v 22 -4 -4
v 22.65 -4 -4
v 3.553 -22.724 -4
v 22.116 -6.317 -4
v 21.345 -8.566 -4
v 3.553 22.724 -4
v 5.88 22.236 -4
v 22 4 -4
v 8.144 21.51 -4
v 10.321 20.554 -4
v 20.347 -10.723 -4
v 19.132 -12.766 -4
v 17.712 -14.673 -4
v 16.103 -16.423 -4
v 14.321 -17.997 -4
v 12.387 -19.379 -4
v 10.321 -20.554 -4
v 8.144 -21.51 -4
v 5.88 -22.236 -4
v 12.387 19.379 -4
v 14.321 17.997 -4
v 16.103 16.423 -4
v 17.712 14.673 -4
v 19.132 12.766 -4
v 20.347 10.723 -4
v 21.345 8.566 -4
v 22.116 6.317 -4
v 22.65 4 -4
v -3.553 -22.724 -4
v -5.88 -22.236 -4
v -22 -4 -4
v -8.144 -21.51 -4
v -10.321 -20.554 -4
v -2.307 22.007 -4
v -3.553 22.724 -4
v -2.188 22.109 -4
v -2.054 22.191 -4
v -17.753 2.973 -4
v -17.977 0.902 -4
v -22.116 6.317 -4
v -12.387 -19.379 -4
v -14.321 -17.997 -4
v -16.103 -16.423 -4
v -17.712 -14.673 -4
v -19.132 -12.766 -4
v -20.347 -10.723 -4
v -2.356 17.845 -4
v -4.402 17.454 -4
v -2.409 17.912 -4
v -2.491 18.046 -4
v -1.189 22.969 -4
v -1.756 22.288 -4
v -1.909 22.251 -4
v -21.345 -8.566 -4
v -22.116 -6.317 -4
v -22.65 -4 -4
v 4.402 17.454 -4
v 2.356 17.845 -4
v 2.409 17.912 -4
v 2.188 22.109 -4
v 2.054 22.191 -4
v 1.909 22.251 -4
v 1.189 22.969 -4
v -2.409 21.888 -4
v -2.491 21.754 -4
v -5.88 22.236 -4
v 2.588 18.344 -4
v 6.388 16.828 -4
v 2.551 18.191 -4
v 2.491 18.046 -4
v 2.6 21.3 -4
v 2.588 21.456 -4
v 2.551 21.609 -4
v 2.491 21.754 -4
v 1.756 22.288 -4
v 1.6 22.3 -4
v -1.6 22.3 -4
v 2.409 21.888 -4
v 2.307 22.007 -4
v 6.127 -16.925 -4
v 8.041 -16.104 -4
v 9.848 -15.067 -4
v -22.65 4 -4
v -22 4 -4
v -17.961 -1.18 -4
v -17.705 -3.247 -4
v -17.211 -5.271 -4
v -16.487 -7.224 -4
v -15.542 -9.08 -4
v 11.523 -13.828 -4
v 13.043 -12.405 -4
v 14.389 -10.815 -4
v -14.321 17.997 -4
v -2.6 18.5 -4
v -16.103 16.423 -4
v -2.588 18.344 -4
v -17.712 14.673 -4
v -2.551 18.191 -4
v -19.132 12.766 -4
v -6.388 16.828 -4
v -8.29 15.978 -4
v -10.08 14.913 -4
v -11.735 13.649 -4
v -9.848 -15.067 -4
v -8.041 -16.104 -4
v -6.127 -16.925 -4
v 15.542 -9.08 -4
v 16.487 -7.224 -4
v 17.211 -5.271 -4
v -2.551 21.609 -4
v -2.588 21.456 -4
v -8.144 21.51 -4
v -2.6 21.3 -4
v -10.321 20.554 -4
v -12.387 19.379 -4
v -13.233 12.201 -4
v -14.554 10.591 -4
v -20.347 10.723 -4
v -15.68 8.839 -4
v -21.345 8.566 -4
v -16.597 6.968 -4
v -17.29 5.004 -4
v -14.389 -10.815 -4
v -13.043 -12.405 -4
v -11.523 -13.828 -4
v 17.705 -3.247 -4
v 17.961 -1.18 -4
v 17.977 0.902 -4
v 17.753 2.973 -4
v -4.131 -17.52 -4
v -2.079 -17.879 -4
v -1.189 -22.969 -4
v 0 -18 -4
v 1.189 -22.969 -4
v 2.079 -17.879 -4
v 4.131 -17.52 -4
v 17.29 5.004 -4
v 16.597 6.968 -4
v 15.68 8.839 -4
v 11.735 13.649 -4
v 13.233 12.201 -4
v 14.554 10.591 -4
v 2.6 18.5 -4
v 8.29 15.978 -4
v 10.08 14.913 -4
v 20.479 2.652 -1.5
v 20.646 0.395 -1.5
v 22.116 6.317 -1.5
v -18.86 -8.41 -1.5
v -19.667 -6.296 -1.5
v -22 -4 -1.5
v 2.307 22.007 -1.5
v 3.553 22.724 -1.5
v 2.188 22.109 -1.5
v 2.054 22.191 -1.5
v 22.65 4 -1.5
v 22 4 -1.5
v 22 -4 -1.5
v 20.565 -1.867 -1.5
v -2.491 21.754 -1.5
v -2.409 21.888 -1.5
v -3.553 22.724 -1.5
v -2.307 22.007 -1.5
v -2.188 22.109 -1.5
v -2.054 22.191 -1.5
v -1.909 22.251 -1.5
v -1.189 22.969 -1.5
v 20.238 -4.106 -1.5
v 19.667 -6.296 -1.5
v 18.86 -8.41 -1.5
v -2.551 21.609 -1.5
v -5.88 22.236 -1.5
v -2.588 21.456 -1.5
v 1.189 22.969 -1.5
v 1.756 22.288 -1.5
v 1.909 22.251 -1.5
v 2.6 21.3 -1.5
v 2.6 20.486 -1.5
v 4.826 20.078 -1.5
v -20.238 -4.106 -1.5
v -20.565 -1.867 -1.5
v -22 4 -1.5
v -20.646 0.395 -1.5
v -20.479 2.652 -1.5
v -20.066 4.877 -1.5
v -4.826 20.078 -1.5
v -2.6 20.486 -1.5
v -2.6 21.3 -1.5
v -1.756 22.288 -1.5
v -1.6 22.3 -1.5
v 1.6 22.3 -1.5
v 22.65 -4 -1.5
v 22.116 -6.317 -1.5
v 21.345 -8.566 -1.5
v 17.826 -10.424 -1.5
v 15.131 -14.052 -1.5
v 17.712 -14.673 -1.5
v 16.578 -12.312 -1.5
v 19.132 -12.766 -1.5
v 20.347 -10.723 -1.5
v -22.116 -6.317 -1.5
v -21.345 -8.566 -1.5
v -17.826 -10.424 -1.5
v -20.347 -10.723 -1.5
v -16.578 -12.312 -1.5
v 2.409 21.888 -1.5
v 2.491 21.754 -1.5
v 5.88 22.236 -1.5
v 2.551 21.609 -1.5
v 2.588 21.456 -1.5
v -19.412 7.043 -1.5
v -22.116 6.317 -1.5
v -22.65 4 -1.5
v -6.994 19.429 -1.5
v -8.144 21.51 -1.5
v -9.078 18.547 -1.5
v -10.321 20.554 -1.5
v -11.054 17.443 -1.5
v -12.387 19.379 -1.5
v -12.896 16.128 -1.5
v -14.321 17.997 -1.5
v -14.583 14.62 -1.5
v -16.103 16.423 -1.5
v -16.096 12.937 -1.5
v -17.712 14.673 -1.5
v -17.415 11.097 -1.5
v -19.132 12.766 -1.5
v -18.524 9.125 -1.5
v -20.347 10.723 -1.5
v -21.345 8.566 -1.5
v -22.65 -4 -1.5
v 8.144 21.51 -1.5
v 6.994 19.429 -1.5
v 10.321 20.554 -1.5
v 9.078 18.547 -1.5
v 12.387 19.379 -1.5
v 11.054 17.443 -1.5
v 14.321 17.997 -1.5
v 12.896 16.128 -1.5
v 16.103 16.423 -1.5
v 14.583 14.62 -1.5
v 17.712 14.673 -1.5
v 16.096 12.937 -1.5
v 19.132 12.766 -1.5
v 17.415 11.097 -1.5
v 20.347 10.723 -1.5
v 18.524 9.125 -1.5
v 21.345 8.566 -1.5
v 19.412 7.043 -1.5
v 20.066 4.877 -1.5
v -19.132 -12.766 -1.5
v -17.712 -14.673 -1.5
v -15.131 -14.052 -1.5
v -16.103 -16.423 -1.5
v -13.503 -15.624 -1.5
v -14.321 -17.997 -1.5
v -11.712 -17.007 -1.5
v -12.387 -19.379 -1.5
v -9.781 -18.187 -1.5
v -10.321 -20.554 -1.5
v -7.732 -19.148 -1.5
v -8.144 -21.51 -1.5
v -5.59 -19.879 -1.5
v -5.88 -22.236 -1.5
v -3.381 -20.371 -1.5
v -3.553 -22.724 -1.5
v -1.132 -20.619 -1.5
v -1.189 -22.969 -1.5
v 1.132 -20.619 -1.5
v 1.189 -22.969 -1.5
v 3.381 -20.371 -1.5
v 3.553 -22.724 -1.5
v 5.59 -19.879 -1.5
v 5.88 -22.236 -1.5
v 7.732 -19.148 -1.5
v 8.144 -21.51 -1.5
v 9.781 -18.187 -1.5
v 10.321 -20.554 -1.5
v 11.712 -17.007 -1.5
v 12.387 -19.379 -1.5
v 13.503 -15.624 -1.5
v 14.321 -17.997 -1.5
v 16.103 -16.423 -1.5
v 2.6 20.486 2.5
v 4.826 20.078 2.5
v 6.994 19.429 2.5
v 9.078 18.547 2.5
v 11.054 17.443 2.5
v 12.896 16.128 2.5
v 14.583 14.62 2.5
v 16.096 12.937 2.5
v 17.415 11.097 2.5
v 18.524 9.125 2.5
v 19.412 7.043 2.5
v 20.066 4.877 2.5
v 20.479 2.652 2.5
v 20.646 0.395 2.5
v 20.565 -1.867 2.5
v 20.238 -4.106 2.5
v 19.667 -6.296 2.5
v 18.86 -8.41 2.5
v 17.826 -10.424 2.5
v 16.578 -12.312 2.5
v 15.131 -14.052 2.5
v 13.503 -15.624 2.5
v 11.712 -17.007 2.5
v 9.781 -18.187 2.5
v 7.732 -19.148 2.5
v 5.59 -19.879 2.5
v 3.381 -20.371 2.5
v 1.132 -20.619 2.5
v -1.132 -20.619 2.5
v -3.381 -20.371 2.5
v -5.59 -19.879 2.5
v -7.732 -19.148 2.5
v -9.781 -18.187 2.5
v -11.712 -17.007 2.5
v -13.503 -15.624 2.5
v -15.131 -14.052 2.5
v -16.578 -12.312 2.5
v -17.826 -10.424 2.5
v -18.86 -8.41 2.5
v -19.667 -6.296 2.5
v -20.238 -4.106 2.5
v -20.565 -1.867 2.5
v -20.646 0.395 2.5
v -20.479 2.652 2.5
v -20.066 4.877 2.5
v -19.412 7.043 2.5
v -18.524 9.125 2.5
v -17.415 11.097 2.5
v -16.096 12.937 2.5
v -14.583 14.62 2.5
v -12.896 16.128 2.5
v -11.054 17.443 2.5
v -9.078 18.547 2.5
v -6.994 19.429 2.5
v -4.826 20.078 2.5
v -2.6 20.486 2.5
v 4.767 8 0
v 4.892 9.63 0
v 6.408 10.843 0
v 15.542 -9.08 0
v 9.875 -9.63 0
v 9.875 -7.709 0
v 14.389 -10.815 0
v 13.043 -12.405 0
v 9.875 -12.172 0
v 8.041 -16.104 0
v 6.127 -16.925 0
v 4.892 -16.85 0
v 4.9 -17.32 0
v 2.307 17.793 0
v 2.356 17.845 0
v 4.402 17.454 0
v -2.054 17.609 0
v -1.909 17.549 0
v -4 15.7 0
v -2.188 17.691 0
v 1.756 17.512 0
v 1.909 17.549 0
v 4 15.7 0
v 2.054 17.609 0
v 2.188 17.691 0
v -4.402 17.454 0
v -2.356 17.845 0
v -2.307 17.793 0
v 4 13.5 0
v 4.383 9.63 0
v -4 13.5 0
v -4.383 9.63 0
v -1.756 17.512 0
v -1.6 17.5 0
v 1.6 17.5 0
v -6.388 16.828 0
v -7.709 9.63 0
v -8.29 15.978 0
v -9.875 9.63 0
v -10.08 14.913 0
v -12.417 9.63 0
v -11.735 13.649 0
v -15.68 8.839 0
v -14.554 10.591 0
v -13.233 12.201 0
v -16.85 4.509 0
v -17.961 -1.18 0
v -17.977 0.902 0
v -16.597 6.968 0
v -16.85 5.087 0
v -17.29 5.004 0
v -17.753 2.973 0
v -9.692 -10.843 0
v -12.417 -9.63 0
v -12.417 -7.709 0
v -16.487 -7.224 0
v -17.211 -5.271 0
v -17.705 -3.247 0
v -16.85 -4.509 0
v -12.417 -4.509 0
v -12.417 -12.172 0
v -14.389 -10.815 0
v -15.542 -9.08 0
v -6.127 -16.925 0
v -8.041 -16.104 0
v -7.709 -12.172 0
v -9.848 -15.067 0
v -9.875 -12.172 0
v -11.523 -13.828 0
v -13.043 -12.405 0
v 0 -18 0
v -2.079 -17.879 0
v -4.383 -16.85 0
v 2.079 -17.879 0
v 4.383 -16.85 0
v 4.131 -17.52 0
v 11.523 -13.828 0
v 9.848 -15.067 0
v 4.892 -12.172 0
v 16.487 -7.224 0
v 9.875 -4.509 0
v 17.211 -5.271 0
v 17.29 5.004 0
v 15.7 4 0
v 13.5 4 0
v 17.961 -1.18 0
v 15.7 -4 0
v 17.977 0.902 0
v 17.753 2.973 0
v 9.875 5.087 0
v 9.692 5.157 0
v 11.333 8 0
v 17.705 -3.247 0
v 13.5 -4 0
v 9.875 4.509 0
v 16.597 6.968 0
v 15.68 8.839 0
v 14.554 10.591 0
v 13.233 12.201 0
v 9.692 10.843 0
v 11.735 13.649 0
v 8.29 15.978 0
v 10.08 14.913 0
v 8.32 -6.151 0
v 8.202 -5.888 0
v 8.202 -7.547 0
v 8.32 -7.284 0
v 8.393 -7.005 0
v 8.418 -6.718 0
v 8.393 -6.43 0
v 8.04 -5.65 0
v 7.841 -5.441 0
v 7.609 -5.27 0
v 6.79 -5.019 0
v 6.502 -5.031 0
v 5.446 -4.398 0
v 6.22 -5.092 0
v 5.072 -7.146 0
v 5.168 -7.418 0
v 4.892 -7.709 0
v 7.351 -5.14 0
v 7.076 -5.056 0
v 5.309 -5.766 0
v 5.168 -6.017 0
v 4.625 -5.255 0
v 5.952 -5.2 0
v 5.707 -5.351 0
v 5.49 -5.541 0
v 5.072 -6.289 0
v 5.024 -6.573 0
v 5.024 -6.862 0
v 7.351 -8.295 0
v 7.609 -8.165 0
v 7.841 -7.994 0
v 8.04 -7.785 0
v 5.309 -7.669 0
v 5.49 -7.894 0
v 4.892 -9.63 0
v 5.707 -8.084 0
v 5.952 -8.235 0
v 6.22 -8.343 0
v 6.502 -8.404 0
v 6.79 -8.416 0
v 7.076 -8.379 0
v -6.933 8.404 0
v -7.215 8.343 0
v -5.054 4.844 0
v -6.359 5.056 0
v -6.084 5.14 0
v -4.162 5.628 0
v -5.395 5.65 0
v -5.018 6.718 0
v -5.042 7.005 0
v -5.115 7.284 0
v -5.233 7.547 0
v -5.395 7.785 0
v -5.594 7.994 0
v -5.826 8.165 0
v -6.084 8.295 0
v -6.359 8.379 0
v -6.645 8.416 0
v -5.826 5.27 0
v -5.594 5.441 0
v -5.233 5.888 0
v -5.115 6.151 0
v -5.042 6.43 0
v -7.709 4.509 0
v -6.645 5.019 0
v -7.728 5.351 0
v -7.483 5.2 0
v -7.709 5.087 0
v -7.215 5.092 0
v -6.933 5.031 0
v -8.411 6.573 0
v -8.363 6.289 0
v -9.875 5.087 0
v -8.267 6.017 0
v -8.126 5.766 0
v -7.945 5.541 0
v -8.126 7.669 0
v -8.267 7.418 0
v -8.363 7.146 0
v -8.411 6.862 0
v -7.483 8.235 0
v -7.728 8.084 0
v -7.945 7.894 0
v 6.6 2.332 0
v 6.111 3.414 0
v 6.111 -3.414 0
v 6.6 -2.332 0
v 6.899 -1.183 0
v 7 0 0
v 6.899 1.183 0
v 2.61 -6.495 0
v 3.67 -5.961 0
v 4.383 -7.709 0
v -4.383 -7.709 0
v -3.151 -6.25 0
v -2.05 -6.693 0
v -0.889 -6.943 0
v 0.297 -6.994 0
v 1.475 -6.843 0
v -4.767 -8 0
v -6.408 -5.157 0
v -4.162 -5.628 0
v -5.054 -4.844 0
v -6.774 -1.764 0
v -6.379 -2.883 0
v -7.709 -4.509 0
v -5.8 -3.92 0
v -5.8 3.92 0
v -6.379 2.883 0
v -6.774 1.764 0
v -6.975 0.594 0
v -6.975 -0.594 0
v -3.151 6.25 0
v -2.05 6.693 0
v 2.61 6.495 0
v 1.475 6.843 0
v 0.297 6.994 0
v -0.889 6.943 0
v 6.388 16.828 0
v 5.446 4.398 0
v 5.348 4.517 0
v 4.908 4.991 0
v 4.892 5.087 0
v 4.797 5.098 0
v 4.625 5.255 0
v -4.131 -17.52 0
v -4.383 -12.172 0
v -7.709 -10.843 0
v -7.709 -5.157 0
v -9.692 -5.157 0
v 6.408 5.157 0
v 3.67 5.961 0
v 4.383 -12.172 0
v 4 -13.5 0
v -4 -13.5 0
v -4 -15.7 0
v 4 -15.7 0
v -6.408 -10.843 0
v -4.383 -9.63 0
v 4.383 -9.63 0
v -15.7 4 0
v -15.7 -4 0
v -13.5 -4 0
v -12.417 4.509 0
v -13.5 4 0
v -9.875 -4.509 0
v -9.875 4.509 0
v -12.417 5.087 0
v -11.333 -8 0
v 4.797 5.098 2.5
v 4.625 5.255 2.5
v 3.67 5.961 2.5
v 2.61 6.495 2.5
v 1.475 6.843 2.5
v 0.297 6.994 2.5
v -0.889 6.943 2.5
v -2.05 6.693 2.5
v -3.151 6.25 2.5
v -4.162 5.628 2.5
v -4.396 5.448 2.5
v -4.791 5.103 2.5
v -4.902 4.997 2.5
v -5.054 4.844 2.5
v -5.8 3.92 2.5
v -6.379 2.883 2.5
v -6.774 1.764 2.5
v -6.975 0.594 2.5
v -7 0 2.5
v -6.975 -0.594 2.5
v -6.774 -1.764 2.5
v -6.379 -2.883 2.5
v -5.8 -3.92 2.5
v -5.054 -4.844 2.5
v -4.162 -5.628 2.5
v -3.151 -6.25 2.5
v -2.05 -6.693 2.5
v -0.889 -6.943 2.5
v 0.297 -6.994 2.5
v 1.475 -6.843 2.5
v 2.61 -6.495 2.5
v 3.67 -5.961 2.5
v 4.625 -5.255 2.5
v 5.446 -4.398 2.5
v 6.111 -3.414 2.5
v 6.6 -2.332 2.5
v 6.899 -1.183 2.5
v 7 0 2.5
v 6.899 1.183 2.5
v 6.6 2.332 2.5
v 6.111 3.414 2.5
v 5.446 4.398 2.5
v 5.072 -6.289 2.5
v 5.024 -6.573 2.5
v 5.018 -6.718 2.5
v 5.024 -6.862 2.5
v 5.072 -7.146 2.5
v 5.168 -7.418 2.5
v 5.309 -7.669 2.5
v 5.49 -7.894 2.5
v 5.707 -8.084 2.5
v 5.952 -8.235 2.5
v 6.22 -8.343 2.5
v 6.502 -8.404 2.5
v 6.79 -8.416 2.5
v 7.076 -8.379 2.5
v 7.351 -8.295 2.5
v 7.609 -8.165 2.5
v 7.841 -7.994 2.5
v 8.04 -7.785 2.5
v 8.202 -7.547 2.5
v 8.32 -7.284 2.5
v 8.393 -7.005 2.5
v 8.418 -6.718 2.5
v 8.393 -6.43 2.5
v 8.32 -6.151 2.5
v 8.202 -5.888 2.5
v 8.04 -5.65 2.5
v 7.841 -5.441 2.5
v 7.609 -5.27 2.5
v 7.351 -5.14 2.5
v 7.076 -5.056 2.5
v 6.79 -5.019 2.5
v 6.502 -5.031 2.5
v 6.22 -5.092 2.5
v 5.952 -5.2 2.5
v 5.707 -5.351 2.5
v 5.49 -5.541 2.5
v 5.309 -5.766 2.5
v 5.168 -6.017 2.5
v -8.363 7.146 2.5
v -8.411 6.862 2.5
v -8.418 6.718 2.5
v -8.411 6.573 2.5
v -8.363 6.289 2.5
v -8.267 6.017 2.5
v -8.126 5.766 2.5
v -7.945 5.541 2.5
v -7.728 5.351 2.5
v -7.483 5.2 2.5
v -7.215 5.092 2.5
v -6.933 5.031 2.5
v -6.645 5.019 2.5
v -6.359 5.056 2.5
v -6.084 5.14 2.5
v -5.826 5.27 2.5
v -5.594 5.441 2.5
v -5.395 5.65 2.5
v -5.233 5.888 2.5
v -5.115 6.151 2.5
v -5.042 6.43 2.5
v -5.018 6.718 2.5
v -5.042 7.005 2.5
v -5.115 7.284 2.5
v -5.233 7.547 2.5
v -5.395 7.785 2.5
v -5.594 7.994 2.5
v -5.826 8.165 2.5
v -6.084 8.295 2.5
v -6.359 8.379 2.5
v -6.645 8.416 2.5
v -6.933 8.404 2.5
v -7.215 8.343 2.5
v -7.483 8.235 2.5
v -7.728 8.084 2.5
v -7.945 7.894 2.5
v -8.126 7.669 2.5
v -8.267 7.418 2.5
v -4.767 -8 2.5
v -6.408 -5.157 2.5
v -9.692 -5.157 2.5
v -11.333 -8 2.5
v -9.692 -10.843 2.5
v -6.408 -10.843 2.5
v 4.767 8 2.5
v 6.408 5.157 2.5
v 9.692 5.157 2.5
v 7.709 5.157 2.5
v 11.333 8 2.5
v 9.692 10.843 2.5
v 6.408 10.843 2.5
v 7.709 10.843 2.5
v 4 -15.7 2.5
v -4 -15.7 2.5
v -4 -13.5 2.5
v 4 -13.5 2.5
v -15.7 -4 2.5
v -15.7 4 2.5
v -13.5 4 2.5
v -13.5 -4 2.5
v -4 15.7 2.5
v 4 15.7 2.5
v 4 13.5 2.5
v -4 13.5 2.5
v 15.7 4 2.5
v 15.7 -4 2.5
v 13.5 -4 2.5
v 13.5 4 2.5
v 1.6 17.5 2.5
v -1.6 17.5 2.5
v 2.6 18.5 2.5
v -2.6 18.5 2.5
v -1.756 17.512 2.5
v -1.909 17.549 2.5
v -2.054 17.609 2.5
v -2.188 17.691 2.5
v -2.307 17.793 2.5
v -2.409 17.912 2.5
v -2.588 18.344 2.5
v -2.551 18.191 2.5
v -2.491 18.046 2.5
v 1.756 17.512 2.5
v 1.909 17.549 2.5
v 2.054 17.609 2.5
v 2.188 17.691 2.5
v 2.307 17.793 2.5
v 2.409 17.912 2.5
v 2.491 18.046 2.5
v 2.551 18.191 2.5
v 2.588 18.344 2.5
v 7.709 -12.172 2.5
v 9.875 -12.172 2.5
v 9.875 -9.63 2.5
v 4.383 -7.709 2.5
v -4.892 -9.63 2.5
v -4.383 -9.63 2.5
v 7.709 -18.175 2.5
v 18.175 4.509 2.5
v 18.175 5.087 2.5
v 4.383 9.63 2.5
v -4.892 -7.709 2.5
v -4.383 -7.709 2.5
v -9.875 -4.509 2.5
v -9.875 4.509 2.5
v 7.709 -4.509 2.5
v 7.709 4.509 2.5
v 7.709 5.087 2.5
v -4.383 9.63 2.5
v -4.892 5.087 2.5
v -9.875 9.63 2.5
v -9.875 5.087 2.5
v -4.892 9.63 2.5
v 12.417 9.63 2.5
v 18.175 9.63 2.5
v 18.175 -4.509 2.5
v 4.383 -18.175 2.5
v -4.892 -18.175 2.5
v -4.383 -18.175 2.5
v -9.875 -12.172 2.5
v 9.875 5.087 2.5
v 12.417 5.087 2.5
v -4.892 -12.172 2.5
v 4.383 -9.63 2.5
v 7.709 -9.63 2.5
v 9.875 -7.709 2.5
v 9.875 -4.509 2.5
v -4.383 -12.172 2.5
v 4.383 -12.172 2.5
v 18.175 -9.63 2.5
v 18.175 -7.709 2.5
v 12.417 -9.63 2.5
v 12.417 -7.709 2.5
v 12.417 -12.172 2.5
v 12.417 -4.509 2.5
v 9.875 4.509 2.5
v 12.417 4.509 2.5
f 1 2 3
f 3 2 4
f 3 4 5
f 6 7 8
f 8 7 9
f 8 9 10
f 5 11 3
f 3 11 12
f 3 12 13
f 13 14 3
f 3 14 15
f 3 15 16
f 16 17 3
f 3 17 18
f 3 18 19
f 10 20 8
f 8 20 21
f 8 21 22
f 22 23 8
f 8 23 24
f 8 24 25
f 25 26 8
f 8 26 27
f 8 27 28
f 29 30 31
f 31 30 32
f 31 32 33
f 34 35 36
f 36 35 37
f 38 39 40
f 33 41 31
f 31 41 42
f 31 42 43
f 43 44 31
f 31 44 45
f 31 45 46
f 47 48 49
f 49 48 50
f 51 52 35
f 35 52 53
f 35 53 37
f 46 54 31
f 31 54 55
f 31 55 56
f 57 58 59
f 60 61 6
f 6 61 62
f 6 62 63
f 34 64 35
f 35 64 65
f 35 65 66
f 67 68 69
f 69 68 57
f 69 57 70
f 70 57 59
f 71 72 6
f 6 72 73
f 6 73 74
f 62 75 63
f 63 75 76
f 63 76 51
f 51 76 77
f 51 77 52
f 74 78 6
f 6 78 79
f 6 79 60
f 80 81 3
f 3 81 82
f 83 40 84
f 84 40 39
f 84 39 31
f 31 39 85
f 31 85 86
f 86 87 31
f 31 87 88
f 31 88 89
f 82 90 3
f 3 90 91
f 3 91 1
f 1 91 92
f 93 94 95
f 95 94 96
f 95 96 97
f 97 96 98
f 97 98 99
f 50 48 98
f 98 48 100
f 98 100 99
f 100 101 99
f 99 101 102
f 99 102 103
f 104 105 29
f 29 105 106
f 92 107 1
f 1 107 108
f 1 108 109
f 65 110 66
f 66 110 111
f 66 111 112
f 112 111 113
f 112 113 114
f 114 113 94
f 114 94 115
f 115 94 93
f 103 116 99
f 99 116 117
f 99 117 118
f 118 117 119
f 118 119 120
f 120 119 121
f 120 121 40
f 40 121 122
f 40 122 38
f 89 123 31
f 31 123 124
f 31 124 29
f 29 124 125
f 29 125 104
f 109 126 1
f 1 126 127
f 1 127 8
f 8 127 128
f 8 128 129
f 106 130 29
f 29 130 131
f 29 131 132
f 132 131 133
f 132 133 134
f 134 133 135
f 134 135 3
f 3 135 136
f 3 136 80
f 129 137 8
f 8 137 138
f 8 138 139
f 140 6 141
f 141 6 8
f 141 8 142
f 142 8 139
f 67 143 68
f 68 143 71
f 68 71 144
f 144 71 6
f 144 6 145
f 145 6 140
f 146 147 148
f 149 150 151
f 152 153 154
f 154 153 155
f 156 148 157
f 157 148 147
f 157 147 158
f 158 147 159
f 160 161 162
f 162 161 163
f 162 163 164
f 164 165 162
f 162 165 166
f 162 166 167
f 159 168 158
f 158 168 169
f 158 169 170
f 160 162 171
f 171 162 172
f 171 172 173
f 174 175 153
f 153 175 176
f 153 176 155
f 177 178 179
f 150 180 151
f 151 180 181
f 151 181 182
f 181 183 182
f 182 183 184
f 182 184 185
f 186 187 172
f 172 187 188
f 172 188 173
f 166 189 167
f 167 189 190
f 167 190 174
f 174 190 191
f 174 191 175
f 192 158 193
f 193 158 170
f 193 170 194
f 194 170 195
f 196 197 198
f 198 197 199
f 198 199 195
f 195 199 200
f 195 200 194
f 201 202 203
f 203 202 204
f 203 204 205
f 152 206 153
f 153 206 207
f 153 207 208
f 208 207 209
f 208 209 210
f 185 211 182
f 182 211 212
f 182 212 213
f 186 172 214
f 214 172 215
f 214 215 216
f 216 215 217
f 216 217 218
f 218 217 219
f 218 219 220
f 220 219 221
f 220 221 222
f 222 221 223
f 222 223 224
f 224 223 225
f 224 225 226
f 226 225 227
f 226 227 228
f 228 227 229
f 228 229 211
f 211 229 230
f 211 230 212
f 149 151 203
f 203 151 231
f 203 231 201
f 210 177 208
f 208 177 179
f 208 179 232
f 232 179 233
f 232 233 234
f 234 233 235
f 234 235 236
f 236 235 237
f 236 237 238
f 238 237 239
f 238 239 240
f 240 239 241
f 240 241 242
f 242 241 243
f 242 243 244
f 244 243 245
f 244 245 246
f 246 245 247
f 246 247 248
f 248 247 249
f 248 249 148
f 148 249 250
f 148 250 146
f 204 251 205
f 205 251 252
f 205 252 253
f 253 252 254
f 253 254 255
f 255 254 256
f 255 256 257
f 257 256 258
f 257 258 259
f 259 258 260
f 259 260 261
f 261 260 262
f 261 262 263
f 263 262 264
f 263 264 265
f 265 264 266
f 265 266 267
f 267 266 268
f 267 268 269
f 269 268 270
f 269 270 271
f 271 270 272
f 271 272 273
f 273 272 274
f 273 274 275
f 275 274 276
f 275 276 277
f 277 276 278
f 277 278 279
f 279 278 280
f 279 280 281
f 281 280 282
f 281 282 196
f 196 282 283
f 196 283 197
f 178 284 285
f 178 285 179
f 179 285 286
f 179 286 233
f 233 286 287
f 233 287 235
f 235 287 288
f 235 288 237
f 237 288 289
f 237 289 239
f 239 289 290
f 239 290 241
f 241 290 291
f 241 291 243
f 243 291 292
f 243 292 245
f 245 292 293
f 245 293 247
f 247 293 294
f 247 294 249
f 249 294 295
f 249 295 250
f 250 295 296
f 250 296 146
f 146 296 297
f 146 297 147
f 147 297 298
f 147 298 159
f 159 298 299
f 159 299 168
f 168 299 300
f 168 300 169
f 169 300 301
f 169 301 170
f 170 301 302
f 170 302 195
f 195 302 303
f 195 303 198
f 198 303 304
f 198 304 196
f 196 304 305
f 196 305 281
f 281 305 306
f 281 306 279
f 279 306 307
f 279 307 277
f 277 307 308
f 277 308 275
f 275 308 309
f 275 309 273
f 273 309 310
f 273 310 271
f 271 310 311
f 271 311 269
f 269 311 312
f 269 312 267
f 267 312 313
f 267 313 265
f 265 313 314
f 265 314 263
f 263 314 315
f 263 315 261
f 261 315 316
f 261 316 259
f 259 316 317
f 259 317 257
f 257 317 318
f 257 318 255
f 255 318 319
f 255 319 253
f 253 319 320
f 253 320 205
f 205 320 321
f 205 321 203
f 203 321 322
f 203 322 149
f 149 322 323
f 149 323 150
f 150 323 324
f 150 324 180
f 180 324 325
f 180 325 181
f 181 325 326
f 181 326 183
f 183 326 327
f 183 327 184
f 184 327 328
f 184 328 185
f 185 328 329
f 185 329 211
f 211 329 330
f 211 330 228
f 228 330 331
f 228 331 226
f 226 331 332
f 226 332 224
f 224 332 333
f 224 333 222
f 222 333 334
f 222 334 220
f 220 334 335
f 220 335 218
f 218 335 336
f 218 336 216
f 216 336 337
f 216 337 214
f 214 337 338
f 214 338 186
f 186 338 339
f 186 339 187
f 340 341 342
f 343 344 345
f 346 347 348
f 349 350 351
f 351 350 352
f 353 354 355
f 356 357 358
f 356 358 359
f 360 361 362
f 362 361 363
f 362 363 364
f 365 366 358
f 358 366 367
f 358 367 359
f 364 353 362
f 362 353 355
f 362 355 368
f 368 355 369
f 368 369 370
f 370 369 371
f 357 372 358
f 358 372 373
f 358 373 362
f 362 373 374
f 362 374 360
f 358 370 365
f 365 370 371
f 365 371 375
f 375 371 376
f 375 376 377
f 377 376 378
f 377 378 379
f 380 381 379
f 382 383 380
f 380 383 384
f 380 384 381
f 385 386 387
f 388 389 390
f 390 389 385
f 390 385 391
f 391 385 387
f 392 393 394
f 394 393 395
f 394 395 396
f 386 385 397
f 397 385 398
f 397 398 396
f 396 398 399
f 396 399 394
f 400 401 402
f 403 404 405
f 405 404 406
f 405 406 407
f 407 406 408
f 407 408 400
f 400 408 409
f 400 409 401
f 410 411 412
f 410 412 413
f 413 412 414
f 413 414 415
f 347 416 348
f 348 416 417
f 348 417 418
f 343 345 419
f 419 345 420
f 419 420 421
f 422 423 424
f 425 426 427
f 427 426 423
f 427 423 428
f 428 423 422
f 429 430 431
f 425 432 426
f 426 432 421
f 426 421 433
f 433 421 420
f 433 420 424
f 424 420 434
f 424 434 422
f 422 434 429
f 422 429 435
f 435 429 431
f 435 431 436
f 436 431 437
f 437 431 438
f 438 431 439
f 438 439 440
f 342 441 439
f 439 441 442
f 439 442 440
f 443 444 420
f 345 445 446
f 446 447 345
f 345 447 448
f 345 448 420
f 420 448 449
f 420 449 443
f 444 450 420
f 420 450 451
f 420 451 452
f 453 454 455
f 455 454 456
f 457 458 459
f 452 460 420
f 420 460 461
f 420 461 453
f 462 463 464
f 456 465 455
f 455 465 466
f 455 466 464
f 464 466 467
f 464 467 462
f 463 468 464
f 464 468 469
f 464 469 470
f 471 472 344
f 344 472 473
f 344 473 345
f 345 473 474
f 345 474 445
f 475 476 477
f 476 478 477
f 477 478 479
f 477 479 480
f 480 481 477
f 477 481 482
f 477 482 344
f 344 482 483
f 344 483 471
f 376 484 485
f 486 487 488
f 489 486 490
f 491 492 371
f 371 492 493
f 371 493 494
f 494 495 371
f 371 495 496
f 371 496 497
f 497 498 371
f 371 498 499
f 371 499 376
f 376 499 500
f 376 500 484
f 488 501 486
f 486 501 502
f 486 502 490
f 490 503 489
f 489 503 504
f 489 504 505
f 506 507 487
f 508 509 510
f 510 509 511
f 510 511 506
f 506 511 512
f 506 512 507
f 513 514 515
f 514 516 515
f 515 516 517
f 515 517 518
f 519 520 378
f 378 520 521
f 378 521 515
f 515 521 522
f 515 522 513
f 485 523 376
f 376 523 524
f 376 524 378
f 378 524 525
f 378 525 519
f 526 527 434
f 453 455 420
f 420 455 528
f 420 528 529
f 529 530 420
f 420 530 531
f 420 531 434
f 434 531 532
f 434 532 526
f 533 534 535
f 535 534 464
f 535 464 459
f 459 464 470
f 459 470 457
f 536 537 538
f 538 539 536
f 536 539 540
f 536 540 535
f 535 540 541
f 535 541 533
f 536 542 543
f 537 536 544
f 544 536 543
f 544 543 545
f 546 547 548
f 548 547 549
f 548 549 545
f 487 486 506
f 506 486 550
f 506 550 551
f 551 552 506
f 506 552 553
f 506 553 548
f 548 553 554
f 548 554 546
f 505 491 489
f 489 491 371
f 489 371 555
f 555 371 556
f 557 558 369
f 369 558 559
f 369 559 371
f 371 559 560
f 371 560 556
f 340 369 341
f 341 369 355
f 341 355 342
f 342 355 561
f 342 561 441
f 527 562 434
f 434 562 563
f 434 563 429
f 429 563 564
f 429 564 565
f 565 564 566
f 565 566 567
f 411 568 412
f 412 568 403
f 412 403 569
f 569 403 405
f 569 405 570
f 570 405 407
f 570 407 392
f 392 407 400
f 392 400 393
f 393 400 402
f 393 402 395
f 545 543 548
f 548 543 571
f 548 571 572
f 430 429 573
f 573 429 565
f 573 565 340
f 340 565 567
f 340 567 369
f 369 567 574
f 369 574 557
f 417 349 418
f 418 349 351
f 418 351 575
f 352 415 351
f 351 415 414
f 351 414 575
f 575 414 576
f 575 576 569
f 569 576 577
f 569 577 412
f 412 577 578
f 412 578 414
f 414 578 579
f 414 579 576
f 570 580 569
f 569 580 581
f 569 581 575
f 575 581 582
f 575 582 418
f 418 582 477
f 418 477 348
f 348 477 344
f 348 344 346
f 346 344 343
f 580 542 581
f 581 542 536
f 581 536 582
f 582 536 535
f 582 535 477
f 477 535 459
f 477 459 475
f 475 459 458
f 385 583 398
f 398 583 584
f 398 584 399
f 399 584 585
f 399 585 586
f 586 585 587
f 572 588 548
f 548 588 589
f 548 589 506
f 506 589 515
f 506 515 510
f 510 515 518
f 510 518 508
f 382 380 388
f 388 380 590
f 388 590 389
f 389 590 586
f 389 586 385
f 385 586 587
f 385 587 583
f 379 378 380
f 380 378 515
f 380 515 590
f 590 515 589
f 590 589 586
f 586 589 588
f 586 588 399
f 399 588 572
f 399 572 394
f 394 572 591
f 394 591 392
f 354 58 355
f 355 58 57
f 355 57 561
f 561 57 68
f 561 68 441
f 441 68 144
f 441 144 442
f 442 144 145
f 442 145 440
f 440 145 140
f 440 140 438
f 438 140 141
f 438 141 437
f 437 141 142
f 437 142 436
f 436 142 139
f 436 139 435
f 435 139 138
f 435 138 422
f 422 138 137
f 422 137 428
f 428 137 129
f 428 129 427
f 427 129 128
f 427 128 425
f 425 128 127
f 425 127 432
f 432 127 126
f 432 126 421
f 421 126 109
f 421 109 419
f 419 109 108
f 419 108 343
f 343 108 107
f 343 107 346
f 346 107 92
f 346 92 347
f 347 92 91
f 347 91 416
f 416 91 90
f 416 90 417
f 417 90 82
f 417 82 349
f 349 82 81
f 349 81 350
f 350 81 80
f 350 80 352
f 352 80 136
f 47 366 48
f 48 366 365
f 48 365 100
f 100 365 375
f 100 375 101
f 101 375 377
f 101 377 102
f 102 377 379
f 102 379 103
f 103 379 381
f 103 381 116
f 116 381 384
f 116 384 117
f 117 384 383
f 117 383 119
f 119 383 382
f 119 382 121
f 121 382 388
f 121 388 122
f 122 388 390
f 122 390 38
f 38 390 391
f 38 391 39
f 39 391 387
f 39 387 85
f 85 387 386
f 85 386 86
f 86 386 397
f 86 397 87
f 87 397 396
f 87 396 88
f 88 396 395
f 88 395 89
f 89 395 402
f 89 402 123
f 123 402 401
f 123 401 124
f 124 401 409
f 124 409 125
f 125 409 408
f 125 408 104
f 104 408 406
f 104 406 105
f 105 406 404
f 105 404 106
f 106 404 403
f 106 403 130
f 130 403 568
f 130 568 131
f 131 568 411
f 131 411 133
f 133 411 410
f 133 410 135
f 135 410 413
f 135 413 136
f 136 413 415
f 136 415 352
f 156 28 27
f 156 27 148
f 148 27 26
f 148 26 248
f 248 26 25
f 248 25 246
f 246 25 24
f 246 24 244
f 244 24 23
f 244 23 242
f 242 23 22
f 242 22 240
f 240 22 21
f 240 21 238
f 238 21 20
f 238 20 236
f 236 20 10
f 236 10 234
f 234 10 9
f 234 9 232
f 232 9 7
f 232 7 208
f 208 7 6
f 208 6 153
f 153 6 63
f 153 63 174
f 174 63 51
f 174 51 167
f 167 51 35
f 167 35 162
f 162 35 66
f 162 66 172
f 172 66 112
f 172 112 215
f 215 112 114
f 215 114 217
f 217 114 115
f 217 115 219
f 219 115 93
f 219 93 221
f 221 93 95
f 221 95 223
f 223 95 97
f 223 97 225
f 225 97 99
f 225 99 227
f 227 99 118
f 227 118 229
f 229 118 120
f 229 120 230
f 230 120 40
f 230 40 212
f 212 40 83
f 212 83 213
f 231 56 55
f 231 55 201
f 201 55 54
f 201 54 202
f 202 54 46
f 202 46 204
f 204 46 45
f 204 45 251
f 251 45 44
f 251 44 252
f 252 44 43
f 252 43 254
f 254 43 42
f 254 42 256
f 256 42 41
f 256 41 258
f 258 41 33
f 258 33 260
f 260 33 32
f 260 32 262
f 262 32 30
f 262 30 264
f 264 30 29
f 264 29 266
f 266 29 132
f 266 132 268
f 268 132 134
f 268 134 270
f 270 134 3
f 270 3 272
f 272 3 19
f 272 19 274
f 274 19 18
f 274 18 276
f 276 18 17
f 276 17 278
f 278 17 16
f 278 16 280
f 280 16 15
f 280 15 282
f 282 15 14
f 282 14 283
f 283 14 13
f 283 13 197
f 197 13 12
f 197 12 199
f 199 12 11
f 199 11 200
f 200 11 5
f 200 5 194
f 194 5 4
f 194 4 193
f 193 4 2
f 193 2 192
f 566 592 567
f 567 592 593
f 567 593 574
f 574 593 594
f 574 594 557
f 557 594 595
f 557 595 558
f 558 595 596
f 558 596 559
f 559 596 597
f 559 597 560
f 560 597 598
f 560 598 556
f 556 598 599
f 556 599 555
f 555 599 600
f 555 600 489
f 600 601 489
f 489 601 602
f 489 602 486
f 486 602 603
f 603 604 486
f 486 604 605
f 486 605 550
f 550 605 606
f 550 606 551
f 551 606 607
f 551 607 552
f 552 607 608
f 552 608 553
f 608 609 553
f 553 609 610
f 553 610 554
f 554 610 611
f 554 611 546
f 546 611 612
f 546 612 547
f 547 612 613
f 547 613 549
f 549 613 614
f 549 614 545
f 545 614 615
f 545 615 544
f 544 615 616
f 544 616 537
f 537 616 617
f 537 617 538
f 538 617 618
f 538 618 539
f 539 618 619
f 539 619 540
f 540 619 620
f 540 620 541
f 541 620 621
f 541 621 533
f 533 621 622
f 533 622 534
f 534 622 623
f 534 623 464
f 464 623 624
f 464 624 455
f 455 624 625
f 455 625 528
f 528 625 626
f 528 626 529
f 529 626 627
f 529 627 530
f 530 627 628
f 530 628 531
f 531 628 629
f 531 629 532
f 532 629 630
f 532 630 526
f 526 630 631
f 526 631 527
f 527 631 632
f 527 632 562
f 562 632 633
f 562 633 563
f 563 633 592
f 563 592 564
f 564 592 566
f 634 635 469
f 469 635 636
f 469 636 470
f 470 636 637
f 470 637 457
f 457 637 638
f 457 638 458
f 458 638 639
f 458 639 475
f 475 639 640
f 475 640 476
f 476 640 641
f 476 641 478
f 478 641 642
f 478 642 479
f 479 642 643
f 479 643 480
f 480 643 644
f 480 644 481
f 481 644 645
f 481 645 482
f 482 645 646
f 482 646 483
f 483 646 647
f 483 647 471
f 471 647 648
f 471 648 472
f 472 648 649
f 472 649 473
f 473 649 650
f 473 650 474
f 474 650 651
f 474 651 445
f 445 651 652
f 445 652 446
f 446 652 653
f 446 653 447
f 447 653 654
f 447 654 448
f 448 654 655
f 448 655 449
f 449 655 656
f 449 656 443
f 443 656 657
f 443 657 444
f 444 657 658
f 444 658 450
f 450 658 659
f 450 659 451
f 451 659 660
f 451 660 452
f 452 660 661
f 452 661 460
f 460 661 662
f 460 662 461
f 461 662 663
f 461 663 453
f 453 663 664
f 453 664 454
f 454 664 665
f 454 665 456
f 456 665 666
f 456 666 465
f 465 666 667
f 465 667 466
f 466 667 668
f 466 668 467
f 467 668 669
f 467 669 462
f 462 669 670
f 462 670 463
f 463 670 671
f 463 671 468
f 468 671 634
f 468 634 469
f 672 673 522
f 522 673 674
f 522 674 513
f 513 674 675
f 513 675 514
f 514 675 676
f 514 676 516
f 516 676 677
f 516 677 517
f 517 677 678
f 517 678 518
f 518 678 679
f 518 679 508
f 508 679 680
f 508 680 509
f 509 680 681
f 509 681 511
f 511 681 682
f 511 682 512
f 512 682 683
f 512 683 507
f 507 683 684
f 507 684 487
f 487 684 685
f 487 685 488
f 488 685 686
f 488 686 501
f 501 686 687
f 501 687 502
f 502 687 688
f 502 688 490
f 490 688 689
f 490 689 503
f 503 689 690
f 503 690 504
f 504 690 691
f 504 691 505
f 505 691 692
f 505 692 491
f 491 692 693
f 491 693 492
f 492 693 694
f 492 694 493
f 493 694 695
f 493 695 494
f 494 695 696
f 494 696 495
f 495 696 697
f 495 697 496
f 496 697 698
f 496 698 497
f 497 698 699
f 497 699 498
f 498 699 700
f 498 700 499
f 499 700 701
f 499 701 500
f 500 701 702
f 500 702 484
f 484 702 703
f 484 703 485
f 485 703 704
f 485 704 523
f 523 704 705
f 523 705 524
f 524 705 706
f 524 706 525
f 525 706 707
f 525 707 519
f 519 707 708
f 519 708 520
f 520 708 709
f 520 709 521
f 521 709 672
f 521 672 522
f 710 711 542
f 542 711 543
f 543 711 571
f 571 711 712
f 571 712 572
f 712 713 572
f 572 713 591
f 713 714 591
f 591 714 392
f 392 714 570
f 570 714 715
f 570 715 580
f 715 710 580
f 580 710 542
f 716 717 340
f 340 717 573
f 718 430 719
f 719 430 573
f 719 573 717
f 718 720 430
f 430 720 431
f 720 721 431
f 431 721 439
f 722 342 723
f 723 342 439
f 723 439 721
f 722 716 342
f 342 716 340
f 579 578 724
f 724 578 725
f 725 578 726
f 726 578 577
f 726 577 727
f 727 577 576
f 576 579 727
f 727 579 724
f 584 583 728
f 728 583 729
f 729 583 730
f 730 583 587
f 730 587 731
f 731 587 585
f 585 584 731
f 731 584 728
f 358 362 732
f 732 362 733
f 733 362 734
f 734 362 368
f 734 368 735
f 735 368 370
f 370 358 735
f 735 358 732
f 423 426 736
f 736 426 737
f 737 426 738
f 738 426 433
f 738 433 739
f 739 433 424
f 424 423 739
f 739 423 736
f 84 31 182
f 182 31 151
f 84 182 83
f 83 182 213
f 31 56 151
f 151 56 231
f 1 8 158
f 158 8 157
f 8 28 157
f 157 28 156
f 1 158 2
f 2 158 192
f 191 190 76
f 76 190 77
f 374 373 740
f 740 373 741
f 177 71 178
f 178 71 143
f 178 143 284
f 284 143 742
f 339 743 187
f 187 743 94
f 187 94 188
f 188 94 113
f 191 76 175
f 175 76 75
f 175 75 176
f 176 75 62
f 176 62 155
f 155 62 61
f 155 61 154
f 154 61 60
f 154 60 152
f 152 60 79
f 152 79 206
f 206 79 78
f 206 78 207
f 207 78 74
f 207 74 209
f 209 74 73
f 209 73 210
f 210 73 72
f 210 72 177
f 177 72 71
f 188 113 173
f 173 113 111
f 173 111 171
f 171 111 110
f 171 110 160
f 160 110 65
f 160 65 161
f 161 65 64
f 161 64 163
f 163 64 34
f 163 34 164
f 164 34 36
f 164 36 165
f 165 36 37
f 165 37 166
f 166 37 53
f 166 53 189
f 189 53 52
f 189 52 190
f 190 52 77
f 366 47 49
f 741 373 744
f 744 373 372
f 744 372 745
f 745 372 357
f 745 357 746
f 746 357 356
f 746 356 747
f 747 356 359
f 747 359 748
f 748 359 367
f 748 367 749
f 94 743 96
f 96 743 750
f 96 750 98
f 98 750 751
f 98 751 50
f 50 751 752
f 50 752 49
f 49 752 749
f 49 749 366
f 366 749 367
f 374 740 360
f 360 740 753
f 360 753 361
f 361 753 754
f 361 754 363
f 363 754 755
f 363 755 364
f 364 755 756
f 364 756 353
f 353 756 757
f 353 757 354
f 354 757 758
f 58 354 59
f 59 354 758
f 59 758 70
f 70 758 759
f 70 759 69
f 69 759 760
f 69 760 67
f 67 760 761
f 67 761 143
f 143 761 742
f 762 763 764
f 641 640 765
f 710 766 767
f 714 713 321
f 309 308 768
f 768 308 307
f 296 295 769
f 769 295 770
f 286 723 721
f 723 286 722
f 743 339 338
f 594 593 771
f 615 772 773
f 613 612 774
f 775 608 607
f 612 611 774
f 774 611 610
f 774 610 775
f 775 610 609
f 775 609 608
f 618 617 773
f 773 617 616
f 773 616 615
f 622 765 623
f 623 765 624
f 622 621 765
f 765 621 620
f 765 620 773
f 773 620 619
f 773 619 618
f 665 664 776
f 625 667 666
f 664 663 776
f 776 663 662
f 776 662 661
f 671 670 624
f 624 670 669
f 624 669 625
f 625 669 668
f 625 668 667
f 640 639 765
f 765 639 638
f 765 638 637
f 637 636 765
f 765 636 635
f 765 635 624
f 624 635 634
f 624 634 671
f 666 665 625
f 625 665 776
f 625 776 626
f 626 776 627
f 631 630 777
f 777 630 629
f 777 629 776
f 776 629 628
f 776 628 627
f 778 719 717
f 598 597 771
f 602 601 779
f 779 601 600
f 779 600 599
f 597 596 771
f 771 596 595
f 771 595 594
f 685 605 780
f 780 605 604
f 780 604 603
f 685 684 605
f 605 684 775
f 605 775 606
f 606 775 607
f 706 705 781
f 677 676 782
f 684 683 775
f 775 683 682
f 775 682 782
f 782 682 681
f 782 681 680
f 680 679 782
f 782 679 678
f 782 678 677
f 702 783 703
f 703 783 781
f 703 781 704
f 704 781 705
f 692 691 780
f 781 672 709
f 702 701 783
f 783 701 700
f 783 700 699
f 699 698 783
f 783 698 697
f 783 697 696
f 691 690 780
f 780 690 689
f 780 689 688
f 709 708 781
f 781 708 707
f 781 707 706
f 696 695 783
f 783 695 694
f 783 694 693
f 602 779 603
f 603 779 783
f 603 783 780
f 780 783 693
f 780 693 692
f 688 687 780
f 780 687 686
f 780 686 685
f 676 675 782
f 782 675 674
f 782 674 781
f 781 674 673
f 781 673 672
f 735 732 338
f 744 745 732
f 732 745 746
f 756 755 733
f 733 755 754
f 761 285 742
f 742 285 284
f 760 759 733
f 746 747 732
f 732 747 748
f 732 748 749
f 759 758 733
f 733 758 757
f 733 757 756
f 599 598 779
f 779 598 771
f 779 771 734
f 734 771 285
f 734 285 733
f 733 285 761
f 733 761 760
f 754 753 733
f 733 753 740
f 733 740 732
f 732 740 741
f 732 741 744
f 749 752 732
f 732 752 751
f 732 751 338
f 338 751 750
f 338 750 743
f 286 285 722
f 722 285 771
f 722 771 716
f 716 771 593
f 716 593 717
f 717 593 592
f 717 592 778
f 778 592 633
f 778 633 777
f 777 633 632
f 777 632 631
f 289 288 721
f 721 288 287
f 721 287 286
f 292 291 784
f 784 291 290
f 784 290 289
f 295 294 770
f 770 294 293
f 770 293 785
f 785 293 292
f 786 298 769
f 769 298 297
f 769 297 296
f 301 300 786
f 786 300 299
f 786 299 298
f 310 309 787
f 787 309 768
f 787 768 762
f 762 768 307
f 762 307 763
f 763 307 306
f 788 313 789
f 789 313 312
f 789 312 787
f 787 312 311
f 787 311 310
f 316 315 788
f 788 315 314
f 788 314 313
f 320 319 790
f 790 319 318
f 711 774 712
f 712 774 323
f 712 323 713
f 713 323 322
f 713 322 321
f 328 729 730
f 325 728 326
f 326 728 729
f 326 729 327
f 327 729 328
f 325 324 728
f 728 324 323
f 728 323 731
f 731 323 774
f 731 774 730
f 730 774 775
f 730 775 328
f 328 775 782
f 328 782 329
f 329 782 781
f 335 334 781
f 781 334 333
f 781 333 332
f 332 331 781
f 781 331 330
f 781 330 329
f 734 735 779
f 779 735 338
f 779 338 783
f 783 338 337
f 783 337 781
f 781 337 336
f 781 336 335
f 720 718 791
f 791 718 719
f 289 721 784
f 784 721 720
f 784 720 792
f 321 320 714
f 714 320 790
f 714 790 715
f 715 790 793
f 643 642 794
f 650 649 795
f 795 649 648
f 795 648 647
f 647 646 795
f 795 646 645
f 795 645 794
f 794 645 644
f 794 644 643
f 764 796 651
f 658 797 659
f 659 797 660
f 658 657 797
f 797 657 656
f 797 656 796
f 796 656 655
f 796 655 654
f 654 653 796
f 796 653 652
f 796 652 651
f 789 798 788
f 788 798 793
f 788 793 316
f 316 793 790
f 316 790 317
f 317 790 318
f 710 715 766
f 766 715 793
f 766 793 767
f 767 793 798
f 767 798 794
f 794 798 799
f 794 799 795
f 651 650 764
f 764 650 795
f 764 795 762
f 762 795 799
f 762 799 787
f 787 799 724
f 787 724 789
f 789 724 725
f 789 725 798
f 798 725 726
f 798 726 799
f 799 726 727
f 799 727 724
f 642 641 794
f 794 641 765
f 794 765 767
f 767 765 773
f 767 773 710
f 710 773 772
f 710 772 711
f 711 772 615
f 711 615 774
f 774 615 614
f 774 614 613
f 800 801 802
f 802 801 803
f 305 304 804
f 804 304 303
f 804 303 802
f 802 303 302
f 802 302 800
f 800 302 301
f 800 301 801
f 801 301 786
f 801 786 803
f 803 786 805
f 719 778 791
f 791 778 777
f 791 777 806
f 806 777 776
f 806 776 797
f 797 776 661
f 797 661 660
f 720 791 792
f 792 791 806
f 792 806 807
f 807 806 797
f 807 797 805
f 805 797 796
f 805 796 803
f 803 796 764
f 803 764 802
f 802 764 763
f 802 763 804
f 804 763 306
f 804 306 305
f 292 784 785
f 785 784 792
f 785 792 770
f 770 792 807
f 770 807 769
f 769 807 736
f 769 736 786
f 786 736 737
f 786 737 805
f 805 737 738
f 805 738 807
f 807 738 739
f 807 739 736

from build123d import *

# Parameters (mm, degrees)
SKETCH_1_R               = 17.4
EXTRUDE_1_DEPTH          = 5.6
SKETCH_2_R               = 1.7
CUT_EXTRUDE_1_DEPTH      = 26.23648153
SKETCH_3_R               = 7
CUT_EXTRUDE_2_DEPTH      = 26.23648153
SKETCH_4_R               = 2.8
CUT_EXTRUDE_3_DEPTH      = 3
SKETCH_5_R               = 1.7
CUT_EXTRUDE_4_DEPTH      = 26.23648153
CUT_EXTRUDE_5_DEPTH      = 2.5
SKETCH_7_W               = 16.1
SKETCH_7_H               = 16.1
CUT_EXTRUDE_6_DEPTH      = 1.5
CHAMFER_1_SIZE           = 0.5
SKETCH_9_W               = 2.2
SKETCH_9_H               = 8
SKETCH_9_W_2             = 8
SKETCH_9_H_2             = 2.2
CUT_EXTRUDE_7_DEPTH      = 26.281613873
BOSS_EXTRUDE1_DEPTH      = 5.6
BOSS_EXTRUDE1_DEPTH_BACK = 4
SKETCH1_R                = 20.65
SKETCH1_R_2              = 17.4
SKETCH3_R                = 23
SKETCH3_R_2              = 20.65
BOSS_EXTRUDE2_DEPTH      = 2.5
SKETCH4_R                = 18
CUT_EXTRUDE3_DEPTH       = 4
SKETCH5_W                = 1
SKETCH5_H                = 8
CUT_EXTRUDE4_DEPTH       = 10
CUT_EXTRUDE6_DEPTH       = 10
FILLET3_R                = 1
CUT_EXTRUDE7_START       = -3.1
SKETCH10_R               = 23
CUT_EXTRUDE7_DEPTH       = 3.1


with BuildPart() as part:
    # 草图1 → 凸台-拉伸1 (new body)
    with BuildSketch(Plane.XY):
        Circle(SKETCH_1_R)
    extrude(amount=EXTRUDE_1_DEPTH)

    # 草图2 → 切除-拉伸1 (cut, through all)
    with BuildSketch(Plane.XY.offset(5.6)):
        with Locations((-6.717514421, 6.717514421)):
            Circle(SKETCH_2_R)
        with Locations((6.717514421, -6.717514421)):
            Circle(SKETCH_2_R)
    extrude(amount=-CUT_EXTRUDE_1_DEPTH, mode=Mode.SUBTRACT)

    # 草图3 → 切除-拉伸2 (cut, through all)
    with BuildSketch(Plane.XY.offset(5.6)):
        Circle(SKETCH_3_R)
    extrude(amount=-CUT_EXTRUDE_2_DEPTH, mode=Mode.SUBTRACT)

    # 草图4 → 切除-拉伸3 (cut)
    with BuildSketch(Plane.XY.offset(5.6)):
        with Locations((-6.717514421, 6.717514421)):
            Circle(SKETCH_4_R)
        with Locations((6.717514421, -6.717514421)):
            Circle(SKETCH_4_R)
    extrude(amount=-CUT_EXTRUDE_3_DEPTH, mode=Mode.SUBTRACT)

    # 草图5 → 切除-拉伸4 (cut, through all)
    with BuildSketch(Plane.XY.offset(5.6)):
        with Locations((8.05, 8)):
            Circle(SKETCH_5_R)
        with Locations((-8.05, -8)):
            Circle(SKETCH_5_R)
    extrude(amount=-CUT_EXTRUDE_4_DEPTH, mode=Mode.SUBTRACT)

    # 草图6 → 切除-拉伸5 (cut)
    with BuildSketch(Plane(origin=(0, 0, 0), x_dir=(-1, 0, 0), z_dir=(0, 0, -1))):
        Polygon((4.766838493, -8), (6.408419246, -10.84330127), (9.691580754, -10.84330127), (11.333161507, -8), (9.691580754, -5.15669873), (6.408419246, -5.15669873), align=None)
        Polygon((-4.766838493, 8), (-6.408419246, 10.84330127), (-9.691580754, 10.84330127), (-11.333161507, 8), (-9.691580754, 5.15669873), (-6.408419246, 5.15669873), align=None)
    extrude(amount=-CUT_EXTRUDE_5_DEPTH, mode=Mode.SUBTRACT)

    # 草图7 → 切除-拉伸6 (cut)
    with BuildSketch(Plane.XY.offset(5.6)):
        Rectangle(SKETCH_7_W, SKETCH_7_H)
    extrude(amount=-CUT_EXTRUDE_6_DEPTH, mode=Mode.SUBTRACT)

    # 倒角1
    chamfer_1_edges = [part.edges().sort_by_distance(p)[0] for p in [
        (8.05, 1.022551258, 5.6),
        (1.047918985, 8.05, 5.6),
        (-8.05, -1.022551258, 5.6),
        (-1.047918985, -8.05, 5.6),
    ]]
    chamfer(chamfer_1_edges, length=CHAMFER_1_SIZE)

    # 草图8 → 旋转1 (revolve)
    with BuildSketch(Plane(origin=(0, 0, 0), x_dir=(0, 0, -1), z_dir=(1, 0, 0)), mode=Mode.PRIVATE) as revolve_1_sk:
        Polygon((0, 17.4), (0, 17.2), (0.2, 17.4), align=None)
    revolve(revolve_1_sk.sketch.rotate(Axis((0, 0, 0), (0, 0, 1)), 90), axis=Axis((0, 0, 0), (0, 0, 1)))

    # 草图9 → 切除-拉伸7 (cut, through all)
    with BuildSketch(Plane.XY.offset(5.6)):
        with Locations((14.6, 0)):
            Rectangle(SKETCH_9_W, SKETCH_9_H)
        with Locations((0, 14.6)):
            Rectangle(SKETCH_9_W_2, SKETCH_9_H_2)
        with Locations((-14.6, 0)):
            Rectangle(SKETCH_9_W, SKETCH_9_H)
        with Locations((0, -14.6)):
            Rectangle(SKETCH_9_W_2, SKETCH_9_H_2)
    extrude(amount=-CUT_EXTRUDE_7_DEPTH, mode=Mode.SUBTRACT)

    # Sketch1 → Boss-Extrude1 (add, two sides: drawn at the far end of the back side and taken through both)
    with BuildSketch(Plane.XY.offset(-BOSS_EXTRUDE1_DEPTH_BACK)):
        Circle(SKETCH1_R)
        Circle(SKETCH1_R_2, mode=Mode.SUBTRACT)
    extrude(amount=BOSS_EXTRUDE1_DEPTH + BOSS_EXTRUDE1_DEPTH_BACK)

    # Sketch3 → Boss-Extrude2 (add)
    with BuildSketch(Plane(origin=(0, 0, -4), x_dir=(-1, 0, 0), z_dir=(0, 0, -1))):
        Circle(SKETCH3_R)
        with Locations(Location((0, 0, 0), (0, 0, 180))):
            Circle(SKETCH3_R_2, mode=Mode.SUBTRACT)
    extrude(amount=-BOSS_EXTRUDE2_DEPTH)

    # Sketch4 → Cut-Extrude3 (cut)
    with BuildSketch(Plane(origin=(0, 0, -4), x_dir=(-1, 0, 0), z_dir=(0, 0, -1))):
        Circle(SKETCH4_R)
    extrude(amount=-CUT_EXTRUDE3_DEPTH, mode=Mode.SUBTRACT)

    # Sketch5 → Cut-Extrude4 (cut)
    with BuildSketch(Plane(origin=(0, 0, -4), x_dir=(-1, 0, 0), z_dir=(0, 0, -1))):
        with Locations((22.5, 0)):
            Rectangle(SKETCH5_W, SKETCH5_H)
        with Locations((-22.5, 0)):
            Rectangle(SKETCH5_W, SKETCH5_H)
    extrude(amount=-CUT_EXTRUDE4_DEPTH, mode=Mode.SUBTRACT)

    # Sketch7 → Cut-Extrude6 (cut)
    with BuildSketch(Plane(origin=(0, 0, -4), x_dir=(-1, 0, 0), z_dir=(0, 0, -1))):
        with BuildLine():
            Line((0, 18), (0, 22.3))
            Line((0, 22.3), (-2.6, 22.3))
            Line((-2.6, 22.3), (-2.6, 17.811232411))
            ThreePointArc((-2.6, 17.811232411), (-1.303421766, 17.952746077), (0, 18))
        make_face()
        with BuildLine():
            Line((0, 17.5), (0, 18))
            ThreePointArc((0, 18), (-1.303421766, 17.952746077), (-2.6, 17.811232411))
            Line((-2.6, 17.811232411), (-2.6, 17.5))
            Line((-2.6, 17.5), (0, 17.5))
        make_face()
        with BuildLine():
            Line((2.6, 22.3), (0, 22.3))
            Line((0, 22.3), (0, 18))
            ThreePointArc((0, 18), (1.303421766, 17.952746077), (2.6, 17.811232411))
            Line((2.6, 17.811232411), (2.6, 22.3))
        make_face()
        with BuildLine():
            ThreePointArc((2.6, 17.811232411), (1.303421766, 17.952746077), (0, 18))
            Line((0, 18), (0, 17.5))
            Line((0, 17.5), (2.6, 17.5))
            Line((2.6, 17.5), (2.6, 17.811232411))
        make_face()
    extrude(amount=-CUT_EXTRUDE6_DEPTH, mode=Mode.SUBTRACT)

    # Fillet3
    # the kernel refuses this fillet: 1 mm, written as the material it adds along each edge
    with BuildSketch(Plane(origin=(2.6, 22.3, -4), x_dir=(-1, 0, 0), z_dir=(0, 0, 1))) as fillet3_piece_1:
        with BuildLine():
            CenterArc((FILLET3_R, FILLET3_R), FILLET3_R, 180, 90)
            Line((0, FILLET3_R), (-FILLET3_R * 0.02, FILLET3_R))
            Line((-FILLET3_R * 0.02, FILLET3_R), (-FILLET3_R * 0.02, -FILLET3_R * 0.02))
            Line((-FILLET3_R * 0.02, -FILLET3_R * 0.02), (FILLET3_R, -FILLET3_R * 0.02))
            Line((FILLET3_R, -FILLET3_R * 0.02), (FILLET3_R, 0))
        make_face()
    extrude(amount=2.5)
    with BuildSketch(Plane(origin=(-2.6, 22.3, -4), x_dir=(1, 0, 0), z_dir=(0, 0, 1))) as fillet3_piece_2:
        with BuildLine():
            CenterArc((FILLET3_R, -FILLET3_R), FILLET3_R, 90, 90)
            Line((0, -FILLET3_R), (-FILLET3_R * 0.02, -FILLET3_R))
            Line((-FILLET3_R * 0.02, -FILLET3_R), (-FILLET3_R * 0.02, FILLET3_R * 0.02))
            Line((-FILLET3_R * 0.02, FILLET3_R * 0.02), (FILLET3_R, FILLET3_R * 0.02))
            Line((FILLET3_R, FILLET3_R * 0.02), (FILLET3_R, 0))
        make_face()
    extrude(amount=2.5)
    with BuildSketch(Plane(origin=(-2.6, 17.5, -6), x_dir=(0, 1, 0), z_dir=(0, 0, 1))) as fillet3_piece_3_section:
        with BuildLine():
            CenterArc((FILLET3_R, -FILLET3_R), FILLET3_R, 90, 90)
            Line((0, -FILLET3_R), (-FILLET3_R * 0.02, -FILLET3_R))
            Line((-FILLET3_R * 0.02, -FILLET3_R), (-FILLET3_R * 0.02, FILLET3_R * 0.02))
            Line((-FILLET3_R * 0.02, FILLET3_R * 0.02), (FILLET3_R, FILLET3_R * 0.02))
            Line((FILLET3_R, FILLET3_R * 0.02), (FILLET3_R, 0))
        make_face()
    fillet3_piece_3 = extrude(amount=11.6, mode=Mode.PRIVATE)
    fillet3_piece_3 = split(fillet3_piece_3, bisect_by=Plane(origin=(-2.544482942, 18.024809788, 0), z_dir=(0, 0, -1)), keep=Keep.TOP, mode=Mode.PRIVATE)
    fillet3_piece_3 = fillet3_piece_3 - Plane(origin=(0, 0, -2), x_dir=(-1, 0, 0), z_dir=(0, 0, -1)) * Cylinder(18, 28, mode=Mode.PRIVATE)
    fillet3_piece_3 = split(fillet3_piece_3, bisect_by=Plane(origin=(-2.544482942, 18.024809788, -4), z_dir=(0, 0, 1)), keep=Keep.TOP, mode=Mode.PRIVATE)
    add(fillet3_piece_3)
    with BuildSketch(Plane(origin=(-2.6, 17.5, 0), x_dir=(0, 1, 0), z_dir=(0, 0, 1))) as fillet3_piece_4_section:
        with BuildLine():
            CenterArc((FILLET3_R, -FILLET3_R), FILLET3_R, 90, 90)
            Line((0, -FILLET3_R), (-FILLET3_R * 0.02, -FILLET3_R))
            Line((-FILLET3_R * 0.02, -FILLET3_R), (-FILLET3_R * 0.02, FILLET3_R * 0.02))
            Line((-FILLET3_R * 0.02, FILLET3_R * 0.02), (FILLET3_R, FILLET3_R * 0.02))
            Line((FILLET3_R, FILLET3_R * 0.02), (FILLET3_R, 0))
        make_face()
    fillet3_piece_4 = extrude(amount=5.6, mode=Mode.PRIVATE)
    fillet3_piece_4 = fillet3_piece_4 - Plane(origin=(0, 0, 2.8), x_dir=(-1, 0, 0), z_dir=(0, 0, -1)) * Cylinder(18, 16, mode=Mode.PRIVATE)
    add(fillet3_piece_4)
    with BuildSketch(Plane(origin=(-2.6, 17.5, 0), x_dir=(0, 1, 0), z_dir=(0, 0, 1))) as fillet3_piece_5_section:
        with BuildLine():
            CenterArc((FILLET3_R, -FILLET3_R), FILLET3_R, 90, 90)
            Line((0, -FILLET3_R), (-FILLET3_R * 0.02, -FILLET3_R))
            Line((-FILLET3_R * 0.02, -FILLET3_R), (-FILLET3_R * 0.02, FILLET3_R * 0.02))
            Line((-FILLET3_R * 0.02, FILLET3_R * 0.02), (FILLET3_R, FILLET3_R * 0.02))
            Line((FILLET3_R, FILLET3_R * 0.02), (FILLET3_R, 0))
        make_face()
    fillet3_piece_5 = extrude(amount=5.6, mode=Mode.PRIVATE)
    fillet3_piece_5 = fillet3_piece_5 & Plane(origin=(0, 0, 2.8), x_dir=(-1, 0, 0), z_dir=(0, 0, -1)) * Cylinder(18, 16, mode=Mode.PRIVATE)
    add(fillet3_piece_5)
    with BuildSketch(Plane(origin=(2.6, 17.5, -6), x_dir=(-1, 0, 0), z_dir=(0, 0, 1))) as fillet3_piece_6_section:
        with BuildLine():
            CenterArc((FILLET3_R, -FILLET3_R), FILLET3_R, 90, 90)
            Line((0, -FILLET3_R), (-FILLET3_R * 0.02, -FILLET3_R))
            Line((-FILLET3_R * 0.02, -FILLET3_R), (-FILLET3_R * 0.02, FILLET3_R * 0.02))
            Line((-FILLET3_R * 0.02, FILLET3_R * 0.02), (FILLET3_R, FILLET3_R * 0.02))
            Line((FILLET3_R, FILLET3_R * 0.02), (FILLET3_R, 0))
        make_face()
    fillet3_piece_6 = extrude(amount=11.6, mode=Mode.PRIVATE)
    fillet3_piece_6 = split(fillet3_piece_6, bisect_by=Plane(origin=(2.544482942, 18.024809788, 0), z_dir=(0, 0, -1)), keep=Keep.TOP, mode=Mode.PRIVATE)
    fillet3_piece_6 = fillet3_piece_6 - Plane(origin=(0, 0, -2), x_dir=(-1, 0, 0), z_dir=(0, 0, -1)) * Cylinder(18, 28, mode=Mode.PRIVATE)
    fillet3_piece_6 = split(fillet3_piece_6, bisect_by=Plane(origin=(2.544482942, 18.024809788, -4), z_dir=(0, 0, 1)), keep=Keep.TOP, mode=Mode.PRIVATE)
    add(fillet3_piece_6)
    with BuildSketch(Plane(origin=(2.6, 17.5, 0), x_dir=(-1, 0, 0), z_dir=(0, 0, 1))) as fillet3_piece_7_section:
        with BuildLine():
            CenterArc((FILLET3_R, -FILLET3_R), FILLET3_R, 90, 90)
            Line((0, -FILLET3_R), (-FILLET3_R * 0.02, -FILLET3_R))
            Line((-FILLET3_R * 0.02, -FILLET3_R), (-FILLET3_R * 0.02, FILLET3_R * 0.02))
            Line((-FILLET3_R * 0.02, FILLET3_R * 0.02), (FILLET3_R, FILLET3_R * 0.02))
            Line((FILLET3_R, FILLET3_R * 0.02), (FILLET3_R, 0))
        make_face()
    fillet3_piece_7 = extrude(amount=5.6, mode=Mode.PRIVATE)
    fillet3_piece_7 = fillet3_piece_7 & Plane(origin=(0, 0, 2.8), x_dir=(-1, 0, 0), z_dir=(0, 0, -1)) * Cylinder(18, 16, mode=Mode.PRIVATE)
    add(fillet3_piece_7)
    with BuildSketch(Plane(origin=(2.6, 17.5, 0), x_dir=(-1, 0, 0), z_dir=(0, 0, 1))) as fillet3_piece_8_section:
        with BuildLine():
            CenterArc((FILLET3_R, -FILLET3_R), FILLET3_R, 90, 90)
            Line((0, -FILLET3_R), (-FILLET3_R * 0.02, -FILLET3_R))
            Line((-FILLET3_R * 0.02, -FILLET3_R), (-FILLET3_R * 0.02, FILLET3_R * 0.02))
            Line((-FILLET3_R * 0.02, FILLET3_R * 0.02), (FILLET3_R, FILLET3_R * 0.02))
            Line((FILLET3_R, FILLET3_R * 0.02), (FILLET3_R, 0))
        make_face()
    fillet3_piece_8 = extrude(amount=5.6, mode=Mode.PRIVATE)
    fillet3_piece_8 = fillet3_piece_8 - Plane(origin=(0, 0, 2.8), x_dir=(-1, 0, 0), z_dir=(0, 0, -1)) * Cylinder(18, 16, mode=Mode.PRIVATE)
    add(fillet3_piece_8)

    # Sketch10 → Cut-Extrude7 (cut)
    with BuildSketch(Plane.XY.offset(5.6).offset(CUT_EXTRUDE7_START)):
        Circle(SKETCH10_R)
    extrude(amount=CUT_EXTRUDE7_DEPTH, mode=Mode.SUBTRACT)


solid = part.part
